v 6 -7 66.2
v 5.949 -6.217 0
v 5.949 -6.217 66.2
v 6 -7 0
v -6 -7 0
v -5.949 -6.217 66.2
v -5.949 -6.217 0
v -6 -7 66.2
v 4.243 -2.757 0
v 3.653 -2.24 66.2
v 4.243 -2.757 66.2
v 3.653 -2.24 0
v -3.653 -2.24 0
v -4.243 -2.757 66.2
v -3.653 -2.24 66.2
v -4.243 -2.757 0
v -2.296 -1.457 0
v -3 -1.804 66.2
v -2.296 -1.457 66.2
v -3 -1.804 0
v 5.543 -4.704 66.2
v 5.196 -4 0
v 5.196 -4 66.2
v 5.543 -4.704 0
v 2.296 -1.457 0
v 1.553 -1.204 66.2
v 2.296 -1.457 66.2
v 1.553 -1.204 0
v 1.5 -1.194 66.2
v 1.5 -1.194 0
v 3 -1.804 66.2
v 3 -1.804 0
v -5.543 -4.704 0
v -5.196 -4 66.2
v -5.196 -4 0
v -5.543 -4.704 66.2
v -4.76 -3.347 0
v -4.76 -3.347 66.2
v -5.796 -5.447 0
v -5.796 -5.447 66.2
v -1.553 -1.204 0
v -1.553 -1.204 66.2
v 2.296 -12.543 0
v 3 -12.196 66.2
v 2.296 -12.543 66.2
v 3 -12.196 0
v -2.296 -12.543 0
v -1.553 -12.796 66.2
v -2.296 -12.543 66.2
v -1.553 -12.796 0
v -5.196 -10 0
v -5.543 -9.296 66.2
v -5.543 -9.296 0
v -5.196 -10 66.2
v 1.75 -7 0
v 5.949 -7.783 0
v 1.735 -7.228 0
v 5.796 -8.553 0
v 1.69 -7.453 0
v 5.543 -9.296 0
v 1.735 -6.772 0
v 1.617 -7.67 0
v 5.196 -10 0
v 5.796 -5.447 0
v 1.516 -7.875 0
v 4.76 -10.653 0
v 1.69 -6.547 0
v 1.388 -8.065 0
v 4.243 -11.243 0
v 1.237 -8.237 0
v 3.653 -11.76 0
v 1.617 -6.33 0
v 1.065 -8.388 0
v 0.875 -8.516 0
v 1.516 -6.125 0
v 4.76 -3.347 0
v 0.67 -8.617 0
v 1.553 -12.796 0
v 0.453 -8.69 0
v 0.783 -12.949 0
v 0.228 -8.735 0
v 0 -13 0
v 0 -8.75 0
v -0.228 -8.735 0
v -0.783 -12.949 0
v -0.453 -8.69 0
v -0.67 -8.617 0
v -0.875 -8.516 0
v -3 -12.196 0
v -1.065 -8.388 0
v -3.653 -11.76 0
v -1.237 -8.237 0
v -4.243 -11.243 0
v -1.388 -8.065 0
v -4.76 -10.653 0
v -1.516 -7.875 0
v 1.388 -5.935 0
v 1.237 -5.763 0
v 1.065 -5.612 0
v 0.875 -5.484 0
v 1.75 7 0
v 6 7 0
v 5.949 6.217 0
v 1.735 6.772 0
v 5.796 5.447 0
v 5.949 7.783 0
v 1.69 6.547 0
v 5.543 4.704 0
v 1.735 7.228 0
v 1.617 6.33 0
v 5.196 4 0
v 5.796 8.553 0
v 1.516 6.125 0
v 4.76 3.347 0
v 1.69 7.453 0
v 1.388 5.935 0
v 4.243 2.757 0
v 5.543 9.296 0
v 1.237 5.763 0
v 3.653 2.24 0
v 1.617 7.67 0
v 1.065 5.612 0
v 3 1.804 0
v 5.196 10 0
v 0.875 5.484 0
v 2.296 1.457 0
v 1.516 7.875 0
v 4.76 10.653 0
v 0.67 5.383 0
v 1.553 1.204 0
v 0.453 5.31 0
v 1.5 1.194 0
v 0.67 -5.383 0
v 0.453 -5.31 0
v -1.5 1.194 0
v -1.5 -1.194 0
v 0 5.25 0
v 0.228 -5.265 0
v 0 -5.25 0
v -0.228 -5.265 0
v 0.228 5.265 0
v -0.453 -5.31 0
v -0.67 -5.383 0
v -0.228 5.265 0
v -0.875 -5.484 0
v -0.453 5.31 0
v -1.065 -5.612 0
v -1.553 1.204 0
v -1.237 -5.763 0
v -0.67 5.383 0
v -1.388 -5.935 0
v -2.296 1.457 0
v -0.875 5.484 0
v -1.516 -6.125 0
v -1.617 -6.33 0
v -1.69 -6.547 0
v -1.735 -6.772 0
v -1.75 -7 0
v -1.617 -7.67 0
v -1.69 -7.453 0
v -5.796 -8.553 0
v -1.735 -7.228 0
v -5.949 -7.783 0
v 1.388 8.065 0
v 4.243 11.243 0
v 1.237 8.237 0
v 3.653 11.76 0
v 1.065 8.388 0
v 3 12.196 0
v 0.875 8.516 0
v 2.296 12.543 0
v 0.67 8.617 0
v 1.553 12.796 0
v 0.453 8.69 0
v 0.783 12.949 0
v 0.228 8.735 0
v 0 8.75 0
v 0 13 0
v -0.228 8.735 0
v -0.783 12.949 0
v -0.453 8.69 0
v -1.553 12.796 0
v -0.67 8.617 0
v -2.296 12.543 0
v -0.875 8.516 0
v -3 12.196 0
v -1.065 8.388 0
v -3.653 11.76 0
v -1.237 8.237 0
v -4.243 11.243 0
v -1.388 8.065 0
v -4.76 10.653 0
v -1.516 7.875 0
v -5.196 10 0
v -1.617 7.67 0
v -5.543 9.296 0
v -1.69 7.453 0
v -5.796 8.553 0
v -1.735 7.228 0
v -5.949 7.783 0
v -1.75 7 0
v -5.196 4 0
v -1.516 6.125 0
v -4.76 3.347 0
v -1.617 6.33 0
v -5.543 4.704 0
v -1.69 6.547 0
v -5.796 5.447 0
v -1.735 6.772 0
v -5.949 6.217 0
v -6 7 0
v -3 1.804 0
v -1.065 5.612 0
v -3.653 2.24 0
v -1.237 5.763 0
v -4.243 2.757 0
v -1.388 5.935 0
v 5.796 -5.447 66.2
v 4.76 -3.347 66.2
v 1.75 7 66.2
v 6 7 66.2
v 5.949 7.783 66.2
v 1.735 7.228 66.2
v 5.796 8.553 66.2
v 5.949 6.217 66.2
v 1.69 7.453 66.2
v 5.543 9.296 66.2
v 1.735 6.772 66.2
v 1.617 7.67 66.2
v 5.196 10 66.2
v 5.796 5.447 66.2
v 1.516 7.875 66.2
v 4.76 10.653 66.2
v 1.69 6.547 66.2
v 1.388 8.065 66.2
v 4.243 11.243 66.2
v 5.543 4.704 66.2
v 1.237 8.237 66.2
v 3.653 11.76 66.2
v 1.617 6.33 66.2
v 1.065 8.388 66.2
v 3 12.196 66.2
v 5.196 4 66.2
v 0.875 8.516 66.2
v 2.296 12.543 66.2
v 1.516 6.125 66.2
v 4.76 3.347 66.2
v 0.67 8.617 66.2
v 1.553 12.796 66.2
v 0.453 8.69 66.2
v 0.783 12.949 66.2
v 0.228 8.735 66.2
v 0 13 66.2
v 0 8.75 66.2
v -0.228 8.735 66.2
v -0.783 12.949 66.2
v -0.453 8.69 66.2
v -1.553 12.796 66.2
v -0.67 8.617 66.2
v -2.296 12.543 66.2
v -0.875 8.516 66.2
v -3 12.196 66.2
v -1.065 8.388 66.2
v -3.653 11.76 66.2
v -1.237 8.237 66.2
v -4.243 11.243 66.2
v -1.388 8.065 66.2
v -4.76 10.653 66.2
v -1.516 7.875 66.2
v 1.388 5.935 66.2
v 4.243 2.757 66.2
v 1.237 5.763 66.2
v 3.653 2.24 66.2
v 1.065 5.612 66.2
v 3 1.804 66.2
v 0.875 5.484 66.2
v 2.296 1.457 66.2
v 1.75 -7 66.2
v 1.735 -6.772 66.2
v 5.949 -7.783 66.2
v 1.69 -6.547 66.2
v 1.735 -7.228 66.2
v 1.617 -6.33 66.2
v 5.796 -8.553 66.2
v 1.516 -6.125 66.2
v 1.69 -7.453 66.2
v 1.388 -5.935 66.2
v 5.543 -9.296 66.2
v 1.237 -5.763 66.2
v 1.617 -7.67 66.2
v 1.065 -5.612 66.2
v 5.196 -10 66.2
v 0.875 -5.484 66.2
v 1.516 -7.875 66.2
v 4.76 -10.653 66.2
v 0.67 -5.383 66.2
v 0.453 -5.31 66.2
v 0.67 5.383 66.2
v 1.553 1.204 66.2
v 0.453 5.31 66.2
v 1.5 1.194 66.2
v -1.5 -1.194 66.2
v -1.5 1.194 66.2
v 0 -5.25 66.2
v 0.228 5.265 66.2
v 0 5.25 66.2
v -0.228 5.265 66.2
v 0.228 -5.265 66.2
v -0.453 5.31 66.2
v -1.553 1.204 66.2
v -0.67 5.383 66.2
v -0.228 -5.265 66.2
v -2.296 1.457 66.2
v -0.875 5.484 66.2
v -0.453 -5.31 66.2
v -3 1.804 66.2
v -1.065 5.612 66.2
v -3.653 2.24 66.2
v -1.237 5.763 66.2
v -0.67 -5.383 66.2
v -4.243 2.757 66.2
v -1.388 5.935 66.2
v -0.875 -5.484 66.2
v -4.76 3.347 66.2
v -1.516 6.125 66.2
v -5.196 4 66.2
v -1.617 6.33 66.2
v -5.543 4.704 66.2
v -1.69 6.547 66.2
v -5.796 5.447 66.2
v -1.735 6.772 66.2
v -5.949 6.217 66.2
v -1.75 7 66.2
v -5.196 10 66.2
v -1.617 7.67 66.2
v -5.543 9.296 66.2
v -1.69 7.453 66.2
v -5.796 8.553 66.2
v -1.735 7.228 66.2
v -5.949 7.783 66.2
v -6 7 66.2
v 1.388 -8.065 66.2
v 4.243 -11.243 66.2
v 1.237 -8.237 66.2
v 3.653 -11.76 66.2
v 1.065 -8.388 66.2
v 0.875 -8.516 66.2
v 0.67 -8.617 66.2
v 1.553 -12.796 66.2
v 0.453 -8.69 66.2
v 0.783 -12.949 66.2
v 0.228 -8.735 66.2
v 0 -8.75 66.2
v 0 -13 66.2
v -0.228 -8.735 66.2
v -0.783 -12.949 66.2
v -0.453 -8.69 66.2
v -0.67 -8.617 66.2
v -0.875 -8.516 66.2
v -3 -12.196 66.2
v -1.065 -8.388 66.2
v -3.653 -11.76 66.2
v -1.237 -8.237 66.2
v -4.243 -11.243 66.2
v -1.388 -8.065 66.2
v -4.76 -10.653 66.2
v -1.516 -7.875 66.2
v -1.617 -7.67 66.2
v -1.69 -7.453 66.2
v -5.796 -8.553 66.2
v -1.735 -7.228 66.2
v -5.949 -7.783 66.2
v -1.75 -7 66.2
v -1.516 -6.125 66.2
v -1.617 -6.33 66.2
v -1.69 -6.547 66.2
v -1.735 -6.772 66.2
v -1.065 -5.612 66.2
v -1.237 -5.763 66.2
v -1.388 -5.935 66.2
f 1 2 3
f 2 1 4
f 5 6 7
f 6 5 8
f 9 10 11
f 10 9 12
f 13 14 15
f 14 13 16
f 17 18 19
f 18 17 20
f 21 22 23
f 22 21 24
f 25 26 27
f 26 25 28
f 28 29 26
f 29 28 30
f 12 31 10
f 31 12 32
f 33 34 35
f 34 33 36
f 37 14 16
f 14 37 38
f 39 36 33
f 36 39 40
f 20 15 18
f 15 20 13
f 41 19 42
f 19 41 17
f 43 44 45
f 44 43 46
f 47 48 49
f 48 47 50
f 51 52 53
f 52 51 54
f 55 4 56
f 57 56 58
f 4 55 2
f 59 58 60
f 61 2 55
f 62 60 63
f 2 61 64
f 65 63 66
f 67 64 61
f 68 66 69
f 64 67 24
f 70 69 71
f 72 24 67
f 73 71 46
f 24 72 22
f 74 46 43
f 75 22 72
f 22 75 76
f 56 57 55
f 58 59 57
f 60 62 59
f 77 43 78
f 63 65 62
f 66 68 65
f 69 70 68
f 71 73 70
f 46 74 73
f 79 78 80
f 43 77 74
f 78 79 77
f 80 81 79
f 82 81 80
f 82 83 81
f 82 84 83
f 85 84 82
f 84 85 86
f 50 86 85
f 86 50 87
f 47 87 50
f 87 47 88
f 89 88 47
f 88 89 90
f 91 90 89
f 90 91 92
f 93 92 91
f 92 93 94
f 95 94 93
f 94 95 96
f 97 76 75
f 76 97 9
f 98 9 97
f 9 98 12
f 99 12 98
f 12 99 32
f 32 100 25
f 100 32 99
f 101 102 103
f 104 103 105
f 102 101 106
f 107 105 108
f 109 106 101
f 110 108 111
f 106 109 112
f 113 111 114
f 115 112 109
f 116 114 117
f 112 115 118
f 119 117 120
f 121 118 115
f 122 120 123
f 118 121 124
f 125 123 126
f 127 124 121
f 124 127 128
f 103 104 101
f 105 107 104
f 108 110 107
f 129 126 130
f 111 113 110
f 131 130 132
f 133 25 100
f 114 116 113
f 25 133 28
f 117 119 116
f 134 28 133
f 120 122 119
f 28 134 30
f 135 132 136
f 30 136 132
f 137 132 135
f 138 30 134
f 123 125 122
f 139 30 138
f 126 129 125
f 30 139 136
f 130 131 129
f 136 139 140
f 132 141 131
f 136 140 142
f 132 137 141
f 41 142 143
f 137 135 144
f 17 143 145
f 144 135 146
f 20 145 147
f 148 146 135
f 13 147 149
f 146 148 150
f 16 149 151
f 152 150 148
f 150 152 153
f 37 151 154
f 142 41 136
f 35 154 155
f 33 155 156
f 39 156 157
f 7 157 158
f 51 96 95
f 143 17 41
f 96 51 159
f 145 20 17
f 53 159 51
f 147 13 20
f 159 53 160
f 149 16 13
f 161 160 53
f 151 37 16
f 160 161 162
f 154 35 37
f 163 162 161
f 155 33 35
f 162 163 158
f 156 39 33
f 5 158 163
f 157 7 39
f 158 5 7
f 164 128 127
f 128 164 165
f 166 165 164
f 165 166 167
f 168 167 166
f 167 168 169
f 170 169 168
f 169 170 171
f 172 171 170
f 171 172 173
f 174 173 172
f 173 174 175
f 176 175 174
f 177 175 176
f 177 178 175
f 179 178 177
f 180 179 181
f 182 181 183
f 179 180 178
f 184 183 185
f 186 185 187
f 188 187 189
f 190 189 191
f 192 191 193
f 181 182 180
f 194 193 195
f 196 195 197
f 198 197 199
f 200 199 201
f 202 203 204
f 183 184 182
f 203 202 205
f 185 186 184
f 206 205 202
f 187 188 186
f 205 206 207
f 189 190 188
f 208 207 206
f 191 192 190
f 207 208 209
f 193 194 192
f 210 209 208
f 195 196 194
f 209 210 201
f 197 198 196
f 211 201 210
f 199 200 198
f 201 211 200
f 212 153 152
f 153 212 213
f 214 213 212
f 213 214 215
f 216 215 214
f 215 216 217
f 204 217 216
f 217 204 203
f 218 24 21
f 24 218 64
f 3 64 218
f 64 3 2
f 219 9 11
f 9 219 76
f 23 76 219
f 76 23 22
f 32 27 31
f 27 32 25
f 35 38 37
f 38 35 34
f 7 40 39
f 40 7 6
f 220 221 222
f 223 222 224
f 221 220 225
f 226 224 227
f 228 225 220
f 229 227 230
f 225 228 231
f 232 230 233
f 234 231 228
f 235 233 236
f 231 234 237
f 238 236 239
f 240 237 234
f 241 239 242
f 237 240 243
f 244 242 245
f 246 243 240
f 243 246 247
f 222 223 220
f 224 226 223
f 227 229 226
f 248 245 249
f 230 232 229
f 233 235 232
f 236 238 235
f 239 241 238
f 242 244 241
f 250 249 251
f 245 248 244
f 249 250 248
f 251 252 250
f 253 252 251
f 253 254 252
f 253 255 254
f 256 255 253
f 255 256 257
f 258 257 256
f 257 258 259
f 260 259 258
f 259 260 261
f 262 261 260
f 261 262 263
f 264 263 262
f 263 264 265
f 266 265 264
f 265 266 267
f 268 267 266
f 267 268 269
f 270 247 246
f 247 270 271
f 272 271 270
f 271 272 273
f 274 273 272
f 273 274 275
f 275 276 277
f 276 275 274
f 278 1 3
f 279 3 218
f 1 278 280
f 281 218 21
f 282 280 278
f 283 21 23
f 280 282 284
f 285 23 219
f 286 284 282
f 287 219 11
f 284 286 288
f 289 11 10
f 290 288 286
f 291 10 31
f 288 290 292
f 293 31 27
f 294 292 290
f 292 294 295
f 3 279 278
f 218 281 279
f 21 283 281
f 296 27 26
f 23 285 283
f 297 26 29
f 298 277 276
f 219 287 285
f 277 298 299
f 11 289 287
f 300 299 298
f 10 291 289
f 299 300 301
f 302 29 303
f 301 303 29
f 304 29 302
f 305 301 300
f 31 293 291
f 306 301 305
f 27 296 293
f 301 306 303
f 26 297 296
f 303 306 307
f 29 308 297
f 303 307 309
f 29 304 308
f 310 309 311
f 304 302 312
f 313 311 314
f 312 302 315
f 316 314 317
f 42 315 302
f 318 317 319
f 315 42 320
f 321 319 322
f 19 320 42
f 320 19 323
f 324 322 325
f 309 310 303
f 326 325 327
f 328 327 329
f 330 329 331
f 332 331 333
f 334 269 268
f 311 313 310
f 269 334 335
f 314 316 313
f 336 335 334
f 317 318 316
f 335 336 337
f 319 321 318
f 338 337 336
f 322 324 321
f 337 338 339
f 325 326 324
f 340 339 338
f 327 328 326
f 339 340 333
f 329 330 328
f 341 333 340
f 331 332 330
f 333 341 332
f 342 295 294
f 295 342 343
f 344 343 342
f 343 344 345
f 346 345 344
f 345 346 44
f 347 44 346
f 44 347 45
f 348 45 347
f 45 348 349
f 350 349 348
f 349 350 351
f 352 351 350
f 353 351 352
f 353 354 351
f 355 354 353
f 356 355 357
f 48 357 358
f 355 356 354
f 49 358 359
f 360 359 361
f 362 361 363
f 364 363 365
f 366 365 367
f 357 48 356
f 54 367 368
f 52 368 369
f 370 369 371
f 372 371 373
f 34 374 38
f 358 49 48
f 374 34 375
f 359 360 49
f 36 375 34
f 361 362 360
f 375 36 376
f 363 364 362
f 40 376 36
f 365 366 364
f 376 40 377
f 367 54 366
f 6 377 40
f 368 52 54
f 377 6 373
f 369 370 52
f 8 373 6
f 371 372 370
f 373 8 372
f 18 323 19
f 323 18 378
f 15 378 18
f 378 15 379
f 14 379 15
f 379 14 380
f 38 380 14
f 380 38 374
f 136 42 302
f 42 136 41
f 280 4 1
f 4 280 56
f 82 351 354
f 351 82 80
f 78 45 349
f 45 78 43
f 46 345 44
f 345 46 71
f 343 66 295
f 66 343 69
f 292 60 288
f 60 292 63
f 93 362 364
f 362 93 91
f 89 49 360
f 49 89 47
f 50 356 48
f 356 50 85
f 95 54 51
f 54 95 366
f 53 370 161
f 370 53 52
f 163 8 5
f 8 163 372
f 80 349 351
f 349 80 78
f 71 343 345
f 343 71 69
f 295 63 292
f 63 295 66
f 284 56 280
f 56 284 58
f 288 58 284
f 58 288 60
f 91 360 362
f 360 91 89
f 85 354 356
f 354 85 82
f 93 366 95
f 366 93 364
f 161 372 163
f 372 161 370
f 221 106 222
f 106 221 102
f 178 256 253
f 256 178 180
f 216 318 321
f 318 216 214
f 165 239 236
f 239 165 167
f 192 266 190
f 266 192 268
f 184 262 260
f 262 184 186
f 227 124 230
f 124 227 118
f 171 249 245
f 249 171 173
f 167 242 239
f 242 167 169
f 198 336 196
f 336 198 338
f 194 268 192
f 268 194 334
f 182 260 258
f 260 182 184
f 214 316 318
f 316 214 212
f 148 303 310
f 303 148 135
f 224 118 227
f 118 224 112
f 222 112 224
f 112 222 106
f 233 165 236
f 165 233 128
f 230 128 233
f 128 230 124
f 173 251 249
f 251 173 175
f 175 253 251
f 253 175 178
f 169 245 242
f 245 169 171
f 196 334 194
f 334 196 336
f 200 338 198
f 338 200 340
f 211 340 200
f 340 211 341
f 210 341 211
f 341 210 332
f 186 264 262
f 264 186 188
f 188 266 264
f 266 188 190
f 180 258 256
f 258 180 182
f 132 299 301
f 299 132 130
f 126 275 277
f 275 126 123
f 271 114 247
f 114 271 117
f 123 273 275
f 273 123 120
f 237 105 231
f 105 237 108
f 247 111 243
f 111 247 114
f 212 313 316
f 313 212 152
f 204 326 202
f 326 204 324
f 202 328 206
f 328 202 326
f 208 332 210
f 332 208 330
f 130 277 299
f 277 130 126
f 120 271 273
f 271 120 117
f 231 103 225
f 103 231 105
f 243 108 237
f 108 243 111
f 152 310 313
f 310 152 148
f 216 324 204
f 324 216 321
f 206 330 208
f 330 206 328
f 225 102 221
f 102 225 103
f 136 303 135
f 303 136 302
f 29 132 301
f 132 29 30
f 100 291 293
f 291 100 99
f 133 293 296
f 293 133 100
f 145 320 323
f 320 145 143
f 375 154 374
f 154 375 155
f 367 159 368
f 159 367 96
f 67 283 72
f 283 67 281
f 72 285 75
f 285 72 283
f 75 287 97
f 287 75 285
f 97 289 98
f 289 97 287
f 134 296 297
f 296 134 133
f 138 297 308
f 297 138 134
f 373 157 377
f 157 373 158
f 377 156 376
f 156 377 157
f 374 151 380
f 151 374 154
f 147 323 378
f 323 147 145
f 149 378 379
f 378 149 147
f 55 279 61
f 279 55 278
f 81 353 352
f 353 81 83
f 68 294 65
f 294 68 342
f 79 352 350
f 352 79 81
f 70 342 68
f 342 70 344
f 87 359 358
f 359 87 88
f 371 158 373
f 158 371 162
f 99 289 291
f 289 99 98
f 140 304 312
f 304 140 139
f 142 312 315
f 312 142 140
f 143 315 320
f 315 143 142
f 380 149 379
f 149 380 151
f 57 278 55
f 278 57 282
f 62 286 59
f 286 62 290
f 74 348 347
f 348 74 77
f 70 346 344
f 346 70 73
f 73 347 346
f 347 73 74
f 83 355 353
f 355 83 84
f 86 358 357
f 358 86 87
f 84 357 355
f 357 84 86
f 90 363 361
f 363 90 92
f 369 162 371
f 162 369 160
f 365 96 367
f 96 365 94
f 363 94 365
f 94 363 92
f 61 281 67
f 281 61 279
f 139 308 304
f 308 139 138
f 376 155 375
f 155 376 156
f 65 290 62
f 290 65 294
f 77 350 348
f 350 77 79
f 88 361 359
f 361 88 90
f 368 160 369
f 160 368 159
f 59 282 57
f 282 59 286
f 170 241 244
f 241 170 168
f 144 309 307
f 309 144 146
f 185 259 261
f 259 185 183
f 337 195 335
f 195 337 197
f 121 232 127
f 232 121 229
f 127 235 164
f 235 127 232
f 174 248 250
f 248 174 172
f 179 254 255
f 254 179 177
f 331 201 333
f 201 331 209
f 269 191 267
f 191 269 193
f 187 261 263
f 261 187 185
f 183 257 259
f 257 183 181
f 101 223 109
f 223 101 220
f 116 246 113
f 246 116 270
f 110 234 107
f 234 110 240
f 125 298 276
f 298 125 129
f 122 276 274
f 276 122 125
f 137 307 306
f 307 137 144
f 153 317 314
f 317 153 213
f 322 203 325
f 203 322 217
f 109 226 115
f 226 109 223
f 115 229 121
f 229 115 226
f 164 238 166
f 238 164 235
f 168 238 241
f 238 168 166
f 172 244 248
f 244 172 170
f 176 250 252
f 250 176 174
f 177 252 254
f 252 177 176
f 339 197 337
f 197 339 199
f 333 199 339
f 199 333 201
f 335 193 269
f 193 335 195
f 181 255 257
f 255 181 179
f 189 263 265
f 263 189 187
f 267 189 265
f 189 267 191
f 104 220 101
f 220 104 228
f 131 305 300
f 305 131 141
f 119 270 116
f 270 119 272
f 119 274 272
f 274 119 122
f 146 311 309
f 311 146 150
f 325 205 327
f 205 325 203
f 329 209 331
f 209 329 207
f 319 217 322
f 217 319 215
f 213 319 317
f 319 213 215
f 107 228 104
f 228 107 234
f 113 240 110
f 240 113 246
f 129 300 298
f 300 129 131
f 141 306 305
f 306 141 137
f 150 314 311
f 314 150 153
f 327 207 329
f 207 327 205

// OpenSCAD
// file: hobby-joint-common.scad
// Rev A local joint datum: rotation axis at x=y=0, axial direction +z.
$fn=48;
shaft_x=-10.35;
horn_z=50;
front_t=5;
rear_top=-16.2;
rear_t=7;
bridge_r=58;
bridge_length=horn_z-rear_top;
bridge_pitch=14;
seat_d=13.2;
seat_depth=5.2;
module bridge_holes(h) {
    for(y=[-bridge_pitch/2,bridge_pitch/2])
        translate([-bridge_r,y,-1]) cylinder(d=3.5,h=h+2);
}
module arm_blank(t) {
    linear_extrude(t) hull() {
        circle(d=32);
        translate([-bridge_r,0]) square([12,26],center=true);
    }
}
module arm_window(t) {
    translate([0,0,-1]) linear_extrude(t+2) hull()
        for(x=[-40,-25]) translate([x,0]) circle(d=10);
}
// main file
include <hobby-joint-common.scad>
module joint_bridge() {
    difference() {
        union() {
            for(y=[-bridge_pitch/2,bridge_pitch/2])
                translate([0,y,0]) cylinder(d=12,h=bridge_length);
            translate([-1.5,-bridge_pitch/2,0]) cube([3,bridge_pitch,bridge_length]);
        }
        for(y=[-bridge_pitch/2,bridge_pitch/2])
            translate([0,y,-1]) cylinder(d=3.5,h=bridge_length+2);
    }
}
joint_bridge();
